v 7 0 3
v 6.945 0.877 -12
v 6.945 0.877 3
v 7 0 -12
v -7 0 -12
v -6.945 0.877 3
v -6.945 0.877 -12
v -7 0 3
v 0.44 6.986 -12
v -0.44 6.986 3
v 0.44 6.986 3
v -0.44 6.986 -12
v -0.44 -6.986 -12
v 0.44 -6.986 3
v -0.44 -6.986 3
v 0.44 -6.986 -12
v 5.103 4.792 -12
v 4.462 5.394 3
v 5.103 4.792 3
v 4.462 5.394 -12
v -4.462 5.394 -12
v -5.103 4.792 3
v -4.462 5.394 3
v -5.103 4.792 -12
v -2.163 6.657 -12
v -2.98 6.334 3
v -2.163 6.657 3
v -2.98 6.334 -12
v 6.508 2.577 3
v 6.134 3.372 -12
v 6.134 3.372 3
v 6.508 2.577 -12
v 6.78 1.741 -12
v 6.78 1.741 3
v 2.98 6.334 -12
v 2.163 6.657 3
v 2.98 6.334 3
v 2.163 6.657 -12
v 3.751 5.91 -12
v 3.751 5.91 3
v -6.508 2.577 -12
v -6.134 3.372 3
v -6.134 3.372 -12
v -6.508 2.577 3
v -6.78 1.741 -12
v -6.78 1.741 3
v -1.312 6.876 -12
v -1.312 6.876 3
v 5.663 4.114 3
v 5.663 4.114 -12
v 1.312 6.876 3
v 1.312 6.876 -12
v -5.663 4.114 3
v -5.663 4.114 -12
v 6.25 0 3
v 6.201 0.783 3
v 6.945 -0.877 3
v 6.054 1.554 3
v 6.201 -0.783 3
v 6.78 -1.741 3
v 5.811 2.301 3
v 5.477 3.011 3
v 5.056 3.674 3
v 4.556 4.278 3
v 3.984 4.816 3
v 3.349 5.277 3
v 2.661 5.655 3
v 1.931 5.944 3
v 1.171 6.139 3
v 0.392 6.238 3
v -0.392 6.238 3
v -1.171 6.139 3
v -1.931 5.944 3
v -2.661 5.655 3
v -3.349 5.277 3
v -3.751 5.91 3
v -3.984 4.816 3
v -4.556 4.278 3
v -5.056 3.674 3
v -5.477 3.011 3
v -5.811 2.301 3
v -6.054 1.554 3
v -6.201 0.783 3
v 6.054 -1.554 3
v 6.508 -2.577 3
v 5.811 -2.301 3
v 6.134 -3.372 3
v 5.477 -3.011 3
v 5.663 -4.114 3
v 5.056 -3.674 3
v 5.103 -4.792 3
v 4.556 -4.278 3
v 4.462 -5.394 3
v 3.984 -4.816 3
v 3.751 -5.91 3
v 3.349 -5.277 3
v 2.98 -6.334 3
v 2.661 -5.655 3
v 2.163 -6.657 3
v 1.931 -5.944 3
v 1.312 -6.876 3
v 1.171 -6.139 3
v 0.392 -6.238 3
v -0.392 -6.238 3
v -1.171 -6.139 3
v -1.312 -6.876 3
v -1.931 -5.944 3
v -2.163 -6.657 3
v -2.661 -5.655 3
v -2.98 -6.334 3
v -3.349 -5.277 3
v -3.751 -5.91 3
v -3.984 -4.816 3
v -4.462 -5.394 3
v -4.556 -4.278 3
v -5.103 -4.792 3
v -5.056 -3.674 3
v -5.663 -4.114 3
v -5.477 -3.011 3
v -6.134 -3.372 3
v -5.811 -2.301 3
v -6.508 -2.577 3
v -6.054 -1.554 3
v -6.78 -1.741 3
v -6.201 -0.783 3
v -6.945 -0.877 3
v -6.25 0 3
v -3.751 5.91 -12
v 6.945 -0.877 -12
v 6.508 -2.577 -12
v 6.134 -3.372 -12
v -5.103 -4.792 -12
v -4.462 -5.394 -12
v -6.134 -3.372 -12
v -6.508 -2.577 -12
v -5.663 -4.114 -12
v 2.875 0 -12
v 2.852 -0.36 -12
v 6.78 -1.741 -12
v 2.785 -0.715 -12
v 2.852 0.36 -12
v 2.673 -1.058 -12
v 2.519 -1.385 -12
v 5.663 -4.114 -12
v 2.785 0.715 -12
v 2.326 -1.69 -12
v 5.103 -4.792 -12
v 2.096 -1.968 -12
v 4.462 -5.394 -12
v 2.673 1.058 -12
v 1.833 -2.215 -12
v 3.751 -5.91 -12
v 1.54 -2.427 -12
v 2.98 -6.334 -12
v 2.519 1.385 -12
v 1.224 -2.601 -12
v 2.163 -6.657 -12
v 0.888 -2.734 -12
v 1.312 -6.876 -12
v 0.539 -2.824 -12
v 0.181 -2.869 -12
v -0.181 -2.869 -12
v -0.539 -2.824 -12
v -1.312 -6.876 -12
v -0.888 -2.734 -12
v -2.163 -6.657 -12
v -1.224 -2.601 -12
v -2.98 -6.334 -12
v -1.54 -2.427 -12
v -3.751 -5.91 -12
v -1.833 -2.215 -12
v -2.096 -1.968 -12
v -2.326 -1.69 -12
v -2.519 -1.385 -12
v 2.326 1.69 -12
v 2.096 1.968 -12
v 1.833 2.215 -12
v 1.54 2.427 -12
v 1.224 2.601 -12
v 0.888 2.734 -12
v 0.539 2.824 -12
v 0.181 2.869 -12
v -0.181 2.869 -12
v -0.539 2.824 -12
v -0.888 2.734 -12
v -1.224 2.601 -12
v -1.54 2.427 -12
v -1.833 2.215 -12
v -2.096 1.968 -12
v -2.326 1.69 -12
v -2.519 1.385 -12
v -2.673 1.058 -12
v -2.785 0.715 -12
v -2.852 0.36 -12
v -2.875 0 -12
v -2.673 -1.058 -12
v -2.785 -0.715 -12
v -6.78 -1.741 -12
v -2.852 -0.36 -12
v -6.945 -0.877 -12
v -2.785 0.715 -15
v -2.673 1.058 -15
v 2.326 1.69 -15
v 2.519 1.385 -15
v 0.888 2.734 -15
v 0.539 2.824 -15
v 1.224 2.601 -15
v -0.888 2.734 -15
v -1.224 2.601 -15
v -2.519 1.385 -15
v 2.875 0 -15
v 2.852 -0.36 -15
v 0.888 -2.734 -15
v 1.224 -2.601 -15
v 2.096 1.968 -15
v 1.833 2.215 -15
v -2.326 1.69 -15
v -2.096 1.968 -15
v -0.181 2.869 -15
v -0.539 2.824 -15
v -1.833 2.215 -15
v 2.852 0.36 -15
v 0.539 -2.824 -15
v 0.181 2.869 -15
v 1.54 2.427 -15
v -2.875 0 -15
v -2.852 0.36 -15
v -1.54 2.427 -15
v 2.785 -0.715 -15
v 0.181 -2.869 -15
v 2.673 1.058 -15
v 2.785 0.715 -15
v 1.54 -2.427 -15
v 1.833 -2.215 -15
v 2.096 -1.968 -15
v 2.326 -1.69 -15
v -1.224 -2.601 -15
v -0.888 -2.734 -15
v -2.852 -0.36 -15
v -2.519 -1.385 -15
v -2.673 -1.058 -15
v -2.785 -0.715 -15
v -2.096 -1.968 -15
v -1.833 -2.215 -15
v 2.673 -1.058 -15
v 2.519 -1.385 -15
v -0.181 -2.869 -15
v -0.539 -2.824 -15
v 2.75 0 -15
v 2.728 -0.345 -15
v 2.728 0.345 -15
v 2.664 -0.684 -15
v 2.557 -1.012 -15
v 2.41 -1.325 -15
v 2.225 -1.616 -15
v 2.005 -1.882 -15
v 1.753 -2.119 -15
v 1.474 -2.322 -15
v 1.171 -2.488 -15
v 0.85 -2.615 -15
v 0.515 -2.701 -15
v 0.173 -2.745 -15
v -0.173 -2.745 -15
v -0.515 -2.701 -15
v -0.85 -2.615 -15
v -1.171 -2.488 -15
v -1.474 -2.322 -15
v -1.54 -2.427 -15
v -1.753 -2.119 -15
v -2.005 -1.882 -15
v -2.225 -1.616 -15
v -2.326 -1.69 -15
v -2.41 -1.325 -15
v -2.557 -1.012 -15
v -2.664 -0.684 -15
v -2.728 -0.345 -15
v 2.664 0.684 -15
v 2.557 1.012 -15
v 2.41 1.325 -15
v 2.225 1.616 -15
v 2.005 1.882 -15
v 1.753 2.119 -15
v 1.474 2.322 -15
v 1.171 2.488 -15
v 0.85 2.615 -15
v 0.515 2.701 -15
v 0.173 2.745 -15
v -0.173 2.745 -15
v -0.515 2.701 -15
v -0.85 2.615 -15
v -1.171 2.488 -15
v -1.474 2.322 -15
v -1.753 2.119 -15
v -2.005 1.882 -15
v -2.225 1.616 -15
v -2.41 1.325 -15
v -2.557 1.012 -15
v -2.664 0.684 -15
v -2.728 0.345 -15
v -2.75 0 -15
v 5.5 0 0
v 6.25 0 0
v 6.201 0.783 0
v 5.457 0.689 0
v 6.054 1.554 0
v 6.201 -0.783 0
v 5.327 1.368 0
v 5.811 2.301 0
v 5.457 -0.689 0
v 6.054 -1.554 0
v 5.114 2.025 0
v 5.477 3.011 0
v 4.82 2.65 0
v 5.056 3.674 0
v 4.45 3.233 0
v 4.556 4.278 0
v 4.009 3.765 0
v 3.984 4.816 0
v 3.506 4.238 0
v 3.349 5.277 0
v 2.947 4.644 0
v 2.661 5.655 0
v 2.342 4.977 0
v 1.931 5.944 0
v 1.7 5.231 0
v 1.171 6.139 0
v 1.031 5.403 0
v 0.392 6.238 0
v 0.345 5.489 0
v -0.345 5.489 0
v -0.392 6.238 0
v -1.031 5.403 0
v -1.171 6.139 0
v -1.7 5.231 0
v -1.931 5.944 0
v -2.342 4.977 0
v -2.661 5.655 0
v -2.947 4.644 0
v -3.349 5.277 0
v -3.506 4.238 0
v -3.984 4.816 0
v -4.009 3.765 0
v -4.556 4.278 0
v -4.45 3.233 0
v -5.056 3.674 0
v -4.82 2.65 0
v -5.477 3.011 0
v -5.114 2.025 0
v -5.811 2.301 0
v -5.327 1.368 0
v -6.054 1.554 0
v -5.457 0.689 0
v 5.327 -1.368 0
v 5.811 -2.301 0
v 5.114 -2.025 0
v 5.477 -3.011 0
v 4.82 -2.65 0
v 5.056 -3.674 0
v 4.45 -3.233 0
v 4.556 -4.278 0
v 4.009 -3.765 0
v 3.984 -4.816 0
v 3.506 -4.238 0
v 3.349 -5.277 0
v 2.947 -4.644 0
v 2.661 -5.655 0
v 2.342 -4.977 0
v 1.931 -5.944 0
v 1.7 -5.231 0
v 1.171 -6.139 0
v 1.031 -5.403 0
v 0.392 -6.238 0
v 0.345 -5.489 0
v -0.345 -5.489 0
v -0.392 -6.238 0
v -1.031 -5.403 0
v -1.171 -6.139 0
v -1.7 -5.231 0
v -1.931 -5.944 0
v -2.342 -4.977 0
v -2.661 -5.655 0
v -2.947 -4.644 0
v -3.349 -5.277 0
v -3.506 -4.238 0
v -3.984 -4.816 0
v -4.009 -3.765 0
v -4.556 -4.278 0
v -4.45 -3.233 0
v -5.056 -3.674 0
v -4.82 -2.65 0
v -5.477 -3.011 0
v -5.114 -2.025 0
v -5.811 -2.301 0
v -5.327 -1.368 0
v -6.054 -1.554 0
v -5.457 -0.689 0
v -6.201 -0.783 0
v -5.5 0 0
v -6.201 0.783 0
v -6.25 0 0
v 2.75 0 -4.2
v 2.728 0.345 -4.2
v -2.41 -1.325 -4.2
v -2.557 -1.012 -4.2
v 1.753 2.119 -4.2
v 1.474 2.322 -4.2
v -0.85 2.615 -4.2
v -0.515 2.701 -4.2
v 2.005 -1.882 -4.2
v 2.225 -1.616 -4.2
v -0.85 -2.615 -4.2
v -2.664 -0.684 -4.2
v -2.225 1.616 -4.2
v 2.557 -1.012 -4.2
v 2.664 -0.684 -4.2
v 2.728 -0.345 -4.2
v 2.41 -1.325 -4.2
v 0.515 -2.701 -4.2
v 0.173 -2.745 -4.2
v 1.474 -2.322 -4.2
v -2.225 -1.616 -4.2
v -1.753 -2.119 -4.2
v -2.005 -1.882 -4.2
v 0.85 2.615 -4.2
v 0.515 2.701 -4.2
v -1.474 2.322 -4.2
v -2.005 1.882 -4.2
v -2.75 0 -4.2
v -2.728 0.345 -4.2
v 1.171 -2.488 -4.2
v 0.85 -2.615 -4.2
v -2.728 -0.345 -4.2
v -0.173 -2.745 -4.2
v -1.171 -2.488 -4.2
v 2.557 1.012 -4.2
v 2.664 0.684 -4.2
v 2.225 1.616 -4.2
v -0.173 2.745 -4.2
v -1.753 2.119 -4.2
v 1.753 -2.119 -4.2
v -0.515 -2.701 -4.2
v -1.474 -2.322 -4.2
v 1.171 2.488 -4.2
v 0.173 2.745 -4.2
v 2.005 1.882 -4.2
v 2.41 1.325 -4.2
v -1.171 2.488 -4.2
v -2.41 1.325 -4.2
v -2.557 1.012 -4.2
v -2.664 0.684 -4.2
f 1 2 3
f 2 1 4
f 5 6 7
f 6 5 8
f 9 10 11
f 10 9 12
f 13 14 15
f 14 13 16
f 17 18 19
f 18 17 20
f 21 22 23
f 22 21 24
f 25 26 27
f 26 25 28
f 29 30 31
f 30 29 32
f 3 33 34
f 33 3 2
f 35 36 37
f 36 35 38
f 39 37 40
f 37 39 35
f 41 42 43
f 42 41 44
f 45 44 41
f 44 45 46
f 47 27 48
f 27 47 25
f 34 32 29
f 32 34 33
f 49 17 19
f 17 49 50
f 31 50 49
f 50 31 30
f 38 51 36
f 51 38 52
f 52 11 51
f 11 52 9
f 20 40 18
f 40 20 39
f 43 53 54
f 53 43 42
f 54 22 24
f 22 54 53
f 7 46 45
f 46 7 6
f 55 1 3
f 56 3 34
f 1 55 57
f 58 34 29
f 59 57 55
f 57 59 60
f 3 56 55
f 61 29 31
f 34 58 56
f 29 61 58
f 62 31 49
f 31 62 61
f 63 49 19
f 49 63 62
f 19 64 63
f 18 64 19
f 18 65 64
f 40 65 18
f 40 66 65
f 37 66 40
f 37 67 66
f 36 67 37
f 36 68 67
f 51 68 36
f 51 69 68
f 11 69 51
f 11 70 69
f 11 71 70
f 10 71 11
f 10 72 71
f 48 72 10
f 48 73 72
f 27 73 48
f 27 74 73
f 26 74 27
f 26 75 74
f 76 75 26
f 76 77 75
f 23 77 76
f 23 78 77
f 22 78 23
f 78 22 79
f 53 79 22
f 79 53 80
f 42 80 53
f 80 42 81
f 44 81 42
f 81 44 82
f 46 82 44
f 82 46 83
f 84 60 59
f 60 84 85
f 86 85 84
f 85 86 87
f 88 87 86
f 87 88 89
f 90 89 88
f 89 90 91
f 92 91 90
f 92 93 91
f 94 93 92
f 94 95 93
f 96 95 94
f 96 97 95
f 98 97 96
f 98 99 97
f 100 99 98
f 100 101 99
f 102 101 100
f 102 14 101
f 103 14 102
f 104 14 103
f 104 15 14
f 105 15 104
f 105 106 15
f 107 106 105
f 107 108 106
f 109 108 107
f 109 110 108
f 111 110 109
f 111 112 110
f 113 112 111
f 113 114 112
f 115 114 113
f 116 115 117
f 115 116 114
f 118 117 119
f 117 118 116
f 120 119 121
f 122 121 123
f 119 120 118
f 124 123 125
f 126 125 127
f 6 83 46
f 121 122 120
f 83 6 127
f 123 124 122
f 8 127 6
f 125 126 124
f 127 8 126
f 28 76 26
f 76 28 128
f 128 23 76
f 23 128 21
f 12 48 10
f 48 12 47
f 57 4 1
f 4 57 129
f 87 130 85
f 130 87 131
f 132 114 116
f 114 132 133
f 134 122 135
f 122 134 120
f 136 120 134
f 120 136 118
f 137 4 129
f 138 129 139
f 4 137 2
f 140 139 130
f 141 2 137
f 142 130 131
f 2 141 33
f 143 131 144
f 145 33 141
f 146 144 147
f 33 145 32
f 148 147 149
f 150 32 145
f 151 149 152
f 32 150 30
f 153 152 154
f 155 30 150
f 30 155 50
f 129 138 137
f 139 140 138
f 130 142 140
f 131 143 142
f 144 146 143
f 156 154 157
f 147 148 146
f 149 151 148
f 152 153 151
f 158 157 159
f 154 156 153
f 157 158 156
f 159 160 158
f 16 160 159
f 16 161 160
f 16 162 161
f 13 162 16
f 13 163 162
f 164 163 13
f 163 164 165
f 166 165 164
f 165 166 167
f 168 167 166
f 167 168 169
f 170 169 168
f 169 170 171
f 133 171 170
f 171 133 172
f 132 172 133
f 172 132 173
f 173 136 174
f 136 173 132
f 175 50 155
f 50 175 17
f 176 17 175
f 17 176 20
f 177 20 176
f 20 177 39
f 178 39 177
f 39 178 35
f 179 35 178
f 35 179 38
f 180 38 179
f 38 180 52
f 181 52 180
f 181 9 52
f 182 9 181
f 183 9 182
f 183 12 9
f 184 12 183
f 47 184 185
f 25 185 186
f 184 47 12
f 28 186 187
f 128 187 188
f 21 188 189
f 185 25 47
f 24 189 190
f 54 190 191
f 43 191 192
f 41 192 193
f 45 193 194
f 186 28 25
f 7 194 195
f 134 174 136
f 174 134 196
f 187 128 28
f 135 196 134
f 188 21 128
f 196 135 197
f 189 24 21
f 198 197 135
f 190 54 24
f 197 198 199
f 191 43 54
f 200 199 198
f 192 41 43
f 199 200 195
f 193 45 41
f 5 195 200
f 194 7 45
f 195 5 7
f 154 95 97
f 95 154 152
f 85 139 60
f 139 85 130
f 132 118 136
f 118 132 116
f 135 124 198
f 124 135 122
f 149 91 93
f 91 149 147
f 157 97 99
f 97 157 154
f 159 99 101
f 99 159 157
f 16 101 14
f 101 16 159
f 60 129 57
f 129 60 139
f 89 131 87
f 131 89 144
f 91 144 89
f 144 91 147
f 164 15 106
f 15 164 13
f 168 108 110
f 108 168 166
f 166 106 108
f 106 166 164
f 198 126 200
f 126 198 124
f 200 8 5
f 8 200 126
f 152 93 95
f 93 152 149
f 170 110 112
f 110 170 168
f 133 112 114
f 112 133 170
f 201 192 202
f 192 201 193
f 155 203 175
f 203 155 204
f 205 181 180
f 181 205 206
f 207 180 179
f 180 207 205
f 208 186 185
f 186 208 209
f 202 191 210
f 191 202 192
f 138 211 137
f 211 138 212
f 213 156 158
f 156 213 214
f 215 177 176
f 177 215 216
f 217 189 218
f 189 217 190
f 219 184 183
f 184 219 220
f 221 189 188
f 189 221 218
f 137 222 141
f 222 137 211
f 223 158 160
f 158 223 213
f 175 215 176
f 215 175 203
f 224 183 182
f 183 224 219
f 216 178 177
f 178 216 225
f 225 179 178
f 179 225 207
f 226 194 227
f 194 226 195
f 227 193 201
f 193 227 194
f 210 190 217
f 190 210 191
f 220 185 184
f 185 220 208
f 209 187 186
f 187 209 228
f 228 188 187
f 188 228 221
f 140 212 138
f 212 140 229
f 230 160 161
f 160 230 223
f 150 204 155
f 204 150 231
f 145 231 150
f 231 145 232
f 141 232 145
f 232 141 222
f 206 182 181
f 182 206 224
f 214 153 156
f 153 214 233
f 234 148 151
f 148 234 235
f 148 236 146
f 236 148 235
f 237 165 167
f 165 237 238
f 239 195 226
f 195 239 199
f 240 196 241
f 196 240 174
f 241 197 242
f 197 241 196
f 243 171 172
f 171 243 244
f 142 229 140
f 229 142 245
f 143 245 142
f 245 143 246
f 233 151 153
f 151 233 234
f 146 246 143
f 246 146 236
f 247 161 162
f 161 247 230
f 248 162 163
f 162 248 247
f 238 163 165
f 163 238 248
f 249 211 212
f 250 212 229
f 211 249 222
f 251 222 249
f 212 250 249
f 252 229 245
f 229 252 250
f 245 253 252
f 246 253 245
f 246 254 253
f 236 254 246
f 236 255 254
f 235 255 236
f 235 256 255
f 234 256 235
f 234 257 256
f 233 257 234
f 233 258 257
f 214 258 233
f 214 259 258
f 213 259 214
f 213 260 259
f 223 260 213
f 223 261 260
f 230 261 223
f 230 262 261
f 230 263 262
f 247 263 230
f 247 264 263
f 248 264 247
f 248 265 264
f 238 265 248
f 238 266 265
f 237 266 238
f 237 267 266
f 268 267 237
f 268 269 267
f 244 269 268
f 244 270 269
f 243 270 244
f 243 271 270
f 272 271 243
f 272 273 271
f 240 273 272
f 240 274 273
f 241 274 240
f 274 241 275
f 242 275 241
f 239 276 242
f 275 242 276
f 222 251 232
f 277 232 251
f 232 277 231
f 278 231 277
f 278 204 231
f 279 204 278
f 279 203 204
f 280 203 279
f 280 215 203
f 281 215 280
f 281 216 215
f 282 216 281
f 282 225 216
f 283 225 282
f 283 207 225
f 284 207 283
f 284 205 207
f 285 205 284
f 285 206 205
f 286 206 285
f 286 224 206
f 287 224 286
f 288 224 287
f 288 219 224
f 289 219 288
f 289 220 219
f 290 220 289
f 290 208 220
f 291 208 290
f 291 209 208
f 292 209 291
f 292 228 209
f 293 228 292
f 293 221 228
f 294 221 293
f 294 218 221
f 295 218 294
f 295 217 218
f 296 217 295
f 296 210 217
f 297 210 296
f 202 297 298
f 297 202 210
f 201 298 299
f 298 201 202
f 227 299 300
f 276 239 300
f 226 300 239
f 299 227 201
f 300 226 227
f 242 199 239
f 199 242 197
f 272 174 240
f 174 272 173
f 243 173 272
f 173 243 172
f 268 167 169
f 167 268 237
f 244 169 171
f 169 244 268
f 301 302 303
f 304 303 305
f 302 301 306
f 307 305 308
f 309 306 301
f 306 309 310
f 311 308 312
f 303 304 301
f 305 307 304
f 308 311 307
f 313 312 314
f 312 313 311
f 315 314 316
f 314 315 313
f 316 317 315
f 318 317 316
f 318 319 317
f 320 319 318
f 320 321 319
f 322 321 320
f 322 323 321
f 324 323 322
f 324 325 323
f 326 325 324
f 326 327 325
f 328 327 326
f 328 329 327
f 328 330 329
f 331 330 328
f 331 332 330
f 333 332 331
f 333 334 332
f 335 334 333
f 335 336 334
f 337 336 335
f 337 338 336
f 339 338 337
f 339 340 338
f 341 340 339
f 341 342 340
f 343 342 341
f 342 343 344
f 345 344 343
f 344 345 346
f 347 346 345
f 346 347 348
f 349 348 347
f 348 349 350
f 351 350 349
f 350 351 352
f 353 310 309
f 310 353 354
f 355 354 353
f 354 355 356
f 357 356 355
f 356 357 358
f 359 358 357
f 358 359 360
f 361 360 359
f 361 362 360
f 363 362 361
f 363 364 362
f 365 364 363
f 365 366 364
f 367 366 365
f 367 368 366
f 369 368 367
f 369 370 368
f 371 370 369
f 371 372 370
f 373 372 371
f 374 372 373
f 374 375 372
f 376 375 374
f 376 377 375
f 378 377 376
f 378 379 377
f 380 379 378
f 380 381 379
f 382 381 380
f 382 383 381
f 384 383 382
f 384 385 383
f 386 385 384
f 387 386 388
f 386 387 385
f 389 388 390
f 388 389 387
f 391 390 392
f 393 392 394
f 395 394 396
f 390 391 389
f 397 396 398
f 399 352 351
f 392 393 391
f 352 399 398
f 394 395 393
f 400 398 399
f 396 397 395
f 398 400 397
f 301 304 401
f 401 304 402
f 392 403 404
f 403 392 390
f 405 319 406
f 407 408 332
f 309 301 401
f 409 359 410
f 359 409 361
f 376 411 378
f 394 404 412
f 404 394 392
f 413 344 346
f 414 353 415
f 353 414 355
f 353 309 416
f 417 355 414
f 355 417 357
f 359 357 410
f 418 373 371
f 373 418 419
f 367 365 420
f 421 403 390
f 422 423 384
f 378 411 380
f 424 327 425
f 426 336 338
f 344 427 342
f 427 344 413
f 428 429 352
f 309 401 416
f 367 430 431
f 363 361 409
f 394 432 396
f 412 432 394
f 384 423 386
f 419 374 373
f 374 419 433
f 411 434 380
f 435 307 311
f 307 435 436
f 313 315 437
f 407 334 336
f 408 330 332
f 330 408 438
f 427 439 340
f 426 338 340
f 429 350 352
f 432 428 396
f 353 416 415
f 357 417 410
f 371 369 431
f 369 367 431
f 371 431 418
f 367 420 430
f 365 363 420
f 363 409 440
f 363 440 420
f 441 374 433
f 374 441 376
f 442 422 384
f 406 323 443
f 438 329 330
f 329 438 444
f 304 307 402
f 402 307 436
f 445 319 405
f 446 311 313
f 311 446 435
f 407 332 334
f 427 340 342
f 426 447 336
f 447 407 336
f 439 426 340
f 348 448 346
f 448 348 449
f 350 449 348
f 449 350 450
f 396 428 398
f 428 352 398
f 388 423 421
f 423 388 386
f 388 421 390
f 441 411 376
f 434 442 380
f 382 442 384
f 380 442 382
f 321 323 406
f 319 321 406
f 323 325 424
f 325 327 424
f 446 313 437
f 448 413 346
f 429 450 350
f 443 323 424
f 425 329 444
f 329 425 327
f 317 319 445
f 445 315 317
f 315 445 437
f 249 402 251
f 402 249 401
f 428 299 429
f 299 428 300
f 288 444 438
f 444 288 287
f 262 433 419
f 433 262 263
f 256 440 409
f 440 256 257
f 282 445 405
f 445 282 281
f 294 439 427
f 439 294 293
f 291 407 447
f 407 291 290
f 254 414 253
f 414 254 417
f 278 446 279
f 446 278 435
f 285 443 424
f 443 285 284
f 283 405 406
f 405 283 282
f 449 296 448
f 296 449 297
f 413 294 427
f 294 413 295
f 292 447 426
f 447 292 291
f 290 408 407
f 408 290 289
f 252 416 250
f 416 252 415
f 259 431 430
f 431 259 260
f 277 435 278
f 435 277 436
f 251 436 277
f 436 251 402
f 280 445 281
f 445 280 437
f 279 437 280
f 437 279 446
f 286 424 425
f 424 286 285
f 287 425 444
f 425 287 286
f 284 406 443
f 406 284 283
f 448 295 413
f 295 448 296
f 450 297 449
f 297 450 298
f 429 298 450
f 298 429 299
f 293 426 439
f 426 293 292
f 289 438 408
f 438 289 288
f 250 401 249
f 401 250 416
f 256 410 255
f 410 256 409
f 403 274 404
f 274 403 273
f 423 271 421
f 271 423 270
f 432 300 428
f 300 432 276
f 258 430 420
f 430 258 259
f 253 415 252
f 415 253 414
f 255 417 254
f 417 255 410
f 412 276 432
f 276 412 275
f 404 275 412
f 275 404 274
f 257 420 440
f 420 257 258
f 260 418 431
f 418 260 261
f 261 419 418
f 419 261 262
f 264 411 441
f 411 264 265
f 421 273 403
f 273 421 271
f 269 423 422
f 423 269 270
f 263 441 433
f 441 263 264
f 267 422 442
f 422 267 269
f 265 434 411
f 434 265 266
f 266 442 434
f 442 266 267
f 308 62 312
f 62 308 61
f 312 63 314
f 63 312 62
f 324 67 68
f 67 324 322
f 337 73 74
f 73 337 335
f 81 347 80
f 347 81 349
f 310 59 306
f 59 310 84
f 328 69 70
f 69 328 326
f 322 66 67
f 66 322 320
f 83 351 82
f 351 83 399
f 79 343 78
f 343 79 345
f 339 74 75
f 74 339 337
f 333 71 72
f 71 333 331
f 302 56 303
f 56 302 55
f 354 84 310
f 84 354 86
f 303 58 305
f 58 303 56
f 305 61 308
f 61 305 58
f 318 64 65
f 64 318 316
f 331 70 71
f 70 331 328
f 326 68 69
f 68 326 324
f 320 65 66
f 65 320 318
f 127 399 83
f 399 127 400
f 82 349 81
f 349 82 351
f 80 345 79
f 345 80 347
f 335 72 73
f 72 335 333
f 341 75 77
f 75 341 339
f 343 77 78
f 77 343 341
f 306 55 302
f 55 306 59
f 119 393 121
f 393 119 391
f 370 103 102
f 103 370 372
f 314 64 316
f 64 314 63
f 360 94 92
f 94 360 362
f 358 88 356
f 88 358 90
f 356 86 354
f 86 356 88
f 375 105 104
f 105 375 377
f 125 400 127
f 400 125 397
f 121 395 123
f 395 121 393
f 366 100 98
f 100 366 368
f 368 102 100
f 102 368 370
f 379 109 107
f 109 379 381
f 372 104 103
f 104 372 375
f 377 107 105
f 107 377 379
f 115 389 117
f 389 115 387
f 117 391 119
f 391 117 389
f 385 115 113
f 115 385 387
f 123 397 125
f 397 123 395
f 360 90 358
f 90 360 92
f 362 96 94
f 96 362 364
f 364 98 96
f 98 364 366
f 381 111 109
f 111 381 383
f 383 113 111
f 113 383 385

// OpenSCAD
$fn = 50;

difference() {
	union() {
		translate(v = [0, 0, -12.0]) {
			cylinder(h = 15, r = 7.0);
		}
		#translate(v = [0, 0, -15.0]) {
			cylinder(h = 15, r = 2.875);
		}
	}
	union() {
		translate(v = [0, 0, 0]) {
			rotate(a = [0, 0, 0]) {
				difference() {
					union() {
						translate(v = [0, 0, -15.0]) {
							cylinder(h = 15, r = 2.25);
						}
						translate(v = [0, 0, -4.2]) {
							cylinder(h = 4.2, r1 = 2.75, r2 = 5.5);
						}
						translate(v = [0, 0, -15.0]) {
							cylinder(h = 15, r = 2.75);
						}
						translate(v = [0, 0, -15.0]) {
							cylinder(h = 15, r = 2.25);
						}
					}
					union();
				}
			}
		}
		#cylinder(h = 3, r = 6.25);
	}
}
